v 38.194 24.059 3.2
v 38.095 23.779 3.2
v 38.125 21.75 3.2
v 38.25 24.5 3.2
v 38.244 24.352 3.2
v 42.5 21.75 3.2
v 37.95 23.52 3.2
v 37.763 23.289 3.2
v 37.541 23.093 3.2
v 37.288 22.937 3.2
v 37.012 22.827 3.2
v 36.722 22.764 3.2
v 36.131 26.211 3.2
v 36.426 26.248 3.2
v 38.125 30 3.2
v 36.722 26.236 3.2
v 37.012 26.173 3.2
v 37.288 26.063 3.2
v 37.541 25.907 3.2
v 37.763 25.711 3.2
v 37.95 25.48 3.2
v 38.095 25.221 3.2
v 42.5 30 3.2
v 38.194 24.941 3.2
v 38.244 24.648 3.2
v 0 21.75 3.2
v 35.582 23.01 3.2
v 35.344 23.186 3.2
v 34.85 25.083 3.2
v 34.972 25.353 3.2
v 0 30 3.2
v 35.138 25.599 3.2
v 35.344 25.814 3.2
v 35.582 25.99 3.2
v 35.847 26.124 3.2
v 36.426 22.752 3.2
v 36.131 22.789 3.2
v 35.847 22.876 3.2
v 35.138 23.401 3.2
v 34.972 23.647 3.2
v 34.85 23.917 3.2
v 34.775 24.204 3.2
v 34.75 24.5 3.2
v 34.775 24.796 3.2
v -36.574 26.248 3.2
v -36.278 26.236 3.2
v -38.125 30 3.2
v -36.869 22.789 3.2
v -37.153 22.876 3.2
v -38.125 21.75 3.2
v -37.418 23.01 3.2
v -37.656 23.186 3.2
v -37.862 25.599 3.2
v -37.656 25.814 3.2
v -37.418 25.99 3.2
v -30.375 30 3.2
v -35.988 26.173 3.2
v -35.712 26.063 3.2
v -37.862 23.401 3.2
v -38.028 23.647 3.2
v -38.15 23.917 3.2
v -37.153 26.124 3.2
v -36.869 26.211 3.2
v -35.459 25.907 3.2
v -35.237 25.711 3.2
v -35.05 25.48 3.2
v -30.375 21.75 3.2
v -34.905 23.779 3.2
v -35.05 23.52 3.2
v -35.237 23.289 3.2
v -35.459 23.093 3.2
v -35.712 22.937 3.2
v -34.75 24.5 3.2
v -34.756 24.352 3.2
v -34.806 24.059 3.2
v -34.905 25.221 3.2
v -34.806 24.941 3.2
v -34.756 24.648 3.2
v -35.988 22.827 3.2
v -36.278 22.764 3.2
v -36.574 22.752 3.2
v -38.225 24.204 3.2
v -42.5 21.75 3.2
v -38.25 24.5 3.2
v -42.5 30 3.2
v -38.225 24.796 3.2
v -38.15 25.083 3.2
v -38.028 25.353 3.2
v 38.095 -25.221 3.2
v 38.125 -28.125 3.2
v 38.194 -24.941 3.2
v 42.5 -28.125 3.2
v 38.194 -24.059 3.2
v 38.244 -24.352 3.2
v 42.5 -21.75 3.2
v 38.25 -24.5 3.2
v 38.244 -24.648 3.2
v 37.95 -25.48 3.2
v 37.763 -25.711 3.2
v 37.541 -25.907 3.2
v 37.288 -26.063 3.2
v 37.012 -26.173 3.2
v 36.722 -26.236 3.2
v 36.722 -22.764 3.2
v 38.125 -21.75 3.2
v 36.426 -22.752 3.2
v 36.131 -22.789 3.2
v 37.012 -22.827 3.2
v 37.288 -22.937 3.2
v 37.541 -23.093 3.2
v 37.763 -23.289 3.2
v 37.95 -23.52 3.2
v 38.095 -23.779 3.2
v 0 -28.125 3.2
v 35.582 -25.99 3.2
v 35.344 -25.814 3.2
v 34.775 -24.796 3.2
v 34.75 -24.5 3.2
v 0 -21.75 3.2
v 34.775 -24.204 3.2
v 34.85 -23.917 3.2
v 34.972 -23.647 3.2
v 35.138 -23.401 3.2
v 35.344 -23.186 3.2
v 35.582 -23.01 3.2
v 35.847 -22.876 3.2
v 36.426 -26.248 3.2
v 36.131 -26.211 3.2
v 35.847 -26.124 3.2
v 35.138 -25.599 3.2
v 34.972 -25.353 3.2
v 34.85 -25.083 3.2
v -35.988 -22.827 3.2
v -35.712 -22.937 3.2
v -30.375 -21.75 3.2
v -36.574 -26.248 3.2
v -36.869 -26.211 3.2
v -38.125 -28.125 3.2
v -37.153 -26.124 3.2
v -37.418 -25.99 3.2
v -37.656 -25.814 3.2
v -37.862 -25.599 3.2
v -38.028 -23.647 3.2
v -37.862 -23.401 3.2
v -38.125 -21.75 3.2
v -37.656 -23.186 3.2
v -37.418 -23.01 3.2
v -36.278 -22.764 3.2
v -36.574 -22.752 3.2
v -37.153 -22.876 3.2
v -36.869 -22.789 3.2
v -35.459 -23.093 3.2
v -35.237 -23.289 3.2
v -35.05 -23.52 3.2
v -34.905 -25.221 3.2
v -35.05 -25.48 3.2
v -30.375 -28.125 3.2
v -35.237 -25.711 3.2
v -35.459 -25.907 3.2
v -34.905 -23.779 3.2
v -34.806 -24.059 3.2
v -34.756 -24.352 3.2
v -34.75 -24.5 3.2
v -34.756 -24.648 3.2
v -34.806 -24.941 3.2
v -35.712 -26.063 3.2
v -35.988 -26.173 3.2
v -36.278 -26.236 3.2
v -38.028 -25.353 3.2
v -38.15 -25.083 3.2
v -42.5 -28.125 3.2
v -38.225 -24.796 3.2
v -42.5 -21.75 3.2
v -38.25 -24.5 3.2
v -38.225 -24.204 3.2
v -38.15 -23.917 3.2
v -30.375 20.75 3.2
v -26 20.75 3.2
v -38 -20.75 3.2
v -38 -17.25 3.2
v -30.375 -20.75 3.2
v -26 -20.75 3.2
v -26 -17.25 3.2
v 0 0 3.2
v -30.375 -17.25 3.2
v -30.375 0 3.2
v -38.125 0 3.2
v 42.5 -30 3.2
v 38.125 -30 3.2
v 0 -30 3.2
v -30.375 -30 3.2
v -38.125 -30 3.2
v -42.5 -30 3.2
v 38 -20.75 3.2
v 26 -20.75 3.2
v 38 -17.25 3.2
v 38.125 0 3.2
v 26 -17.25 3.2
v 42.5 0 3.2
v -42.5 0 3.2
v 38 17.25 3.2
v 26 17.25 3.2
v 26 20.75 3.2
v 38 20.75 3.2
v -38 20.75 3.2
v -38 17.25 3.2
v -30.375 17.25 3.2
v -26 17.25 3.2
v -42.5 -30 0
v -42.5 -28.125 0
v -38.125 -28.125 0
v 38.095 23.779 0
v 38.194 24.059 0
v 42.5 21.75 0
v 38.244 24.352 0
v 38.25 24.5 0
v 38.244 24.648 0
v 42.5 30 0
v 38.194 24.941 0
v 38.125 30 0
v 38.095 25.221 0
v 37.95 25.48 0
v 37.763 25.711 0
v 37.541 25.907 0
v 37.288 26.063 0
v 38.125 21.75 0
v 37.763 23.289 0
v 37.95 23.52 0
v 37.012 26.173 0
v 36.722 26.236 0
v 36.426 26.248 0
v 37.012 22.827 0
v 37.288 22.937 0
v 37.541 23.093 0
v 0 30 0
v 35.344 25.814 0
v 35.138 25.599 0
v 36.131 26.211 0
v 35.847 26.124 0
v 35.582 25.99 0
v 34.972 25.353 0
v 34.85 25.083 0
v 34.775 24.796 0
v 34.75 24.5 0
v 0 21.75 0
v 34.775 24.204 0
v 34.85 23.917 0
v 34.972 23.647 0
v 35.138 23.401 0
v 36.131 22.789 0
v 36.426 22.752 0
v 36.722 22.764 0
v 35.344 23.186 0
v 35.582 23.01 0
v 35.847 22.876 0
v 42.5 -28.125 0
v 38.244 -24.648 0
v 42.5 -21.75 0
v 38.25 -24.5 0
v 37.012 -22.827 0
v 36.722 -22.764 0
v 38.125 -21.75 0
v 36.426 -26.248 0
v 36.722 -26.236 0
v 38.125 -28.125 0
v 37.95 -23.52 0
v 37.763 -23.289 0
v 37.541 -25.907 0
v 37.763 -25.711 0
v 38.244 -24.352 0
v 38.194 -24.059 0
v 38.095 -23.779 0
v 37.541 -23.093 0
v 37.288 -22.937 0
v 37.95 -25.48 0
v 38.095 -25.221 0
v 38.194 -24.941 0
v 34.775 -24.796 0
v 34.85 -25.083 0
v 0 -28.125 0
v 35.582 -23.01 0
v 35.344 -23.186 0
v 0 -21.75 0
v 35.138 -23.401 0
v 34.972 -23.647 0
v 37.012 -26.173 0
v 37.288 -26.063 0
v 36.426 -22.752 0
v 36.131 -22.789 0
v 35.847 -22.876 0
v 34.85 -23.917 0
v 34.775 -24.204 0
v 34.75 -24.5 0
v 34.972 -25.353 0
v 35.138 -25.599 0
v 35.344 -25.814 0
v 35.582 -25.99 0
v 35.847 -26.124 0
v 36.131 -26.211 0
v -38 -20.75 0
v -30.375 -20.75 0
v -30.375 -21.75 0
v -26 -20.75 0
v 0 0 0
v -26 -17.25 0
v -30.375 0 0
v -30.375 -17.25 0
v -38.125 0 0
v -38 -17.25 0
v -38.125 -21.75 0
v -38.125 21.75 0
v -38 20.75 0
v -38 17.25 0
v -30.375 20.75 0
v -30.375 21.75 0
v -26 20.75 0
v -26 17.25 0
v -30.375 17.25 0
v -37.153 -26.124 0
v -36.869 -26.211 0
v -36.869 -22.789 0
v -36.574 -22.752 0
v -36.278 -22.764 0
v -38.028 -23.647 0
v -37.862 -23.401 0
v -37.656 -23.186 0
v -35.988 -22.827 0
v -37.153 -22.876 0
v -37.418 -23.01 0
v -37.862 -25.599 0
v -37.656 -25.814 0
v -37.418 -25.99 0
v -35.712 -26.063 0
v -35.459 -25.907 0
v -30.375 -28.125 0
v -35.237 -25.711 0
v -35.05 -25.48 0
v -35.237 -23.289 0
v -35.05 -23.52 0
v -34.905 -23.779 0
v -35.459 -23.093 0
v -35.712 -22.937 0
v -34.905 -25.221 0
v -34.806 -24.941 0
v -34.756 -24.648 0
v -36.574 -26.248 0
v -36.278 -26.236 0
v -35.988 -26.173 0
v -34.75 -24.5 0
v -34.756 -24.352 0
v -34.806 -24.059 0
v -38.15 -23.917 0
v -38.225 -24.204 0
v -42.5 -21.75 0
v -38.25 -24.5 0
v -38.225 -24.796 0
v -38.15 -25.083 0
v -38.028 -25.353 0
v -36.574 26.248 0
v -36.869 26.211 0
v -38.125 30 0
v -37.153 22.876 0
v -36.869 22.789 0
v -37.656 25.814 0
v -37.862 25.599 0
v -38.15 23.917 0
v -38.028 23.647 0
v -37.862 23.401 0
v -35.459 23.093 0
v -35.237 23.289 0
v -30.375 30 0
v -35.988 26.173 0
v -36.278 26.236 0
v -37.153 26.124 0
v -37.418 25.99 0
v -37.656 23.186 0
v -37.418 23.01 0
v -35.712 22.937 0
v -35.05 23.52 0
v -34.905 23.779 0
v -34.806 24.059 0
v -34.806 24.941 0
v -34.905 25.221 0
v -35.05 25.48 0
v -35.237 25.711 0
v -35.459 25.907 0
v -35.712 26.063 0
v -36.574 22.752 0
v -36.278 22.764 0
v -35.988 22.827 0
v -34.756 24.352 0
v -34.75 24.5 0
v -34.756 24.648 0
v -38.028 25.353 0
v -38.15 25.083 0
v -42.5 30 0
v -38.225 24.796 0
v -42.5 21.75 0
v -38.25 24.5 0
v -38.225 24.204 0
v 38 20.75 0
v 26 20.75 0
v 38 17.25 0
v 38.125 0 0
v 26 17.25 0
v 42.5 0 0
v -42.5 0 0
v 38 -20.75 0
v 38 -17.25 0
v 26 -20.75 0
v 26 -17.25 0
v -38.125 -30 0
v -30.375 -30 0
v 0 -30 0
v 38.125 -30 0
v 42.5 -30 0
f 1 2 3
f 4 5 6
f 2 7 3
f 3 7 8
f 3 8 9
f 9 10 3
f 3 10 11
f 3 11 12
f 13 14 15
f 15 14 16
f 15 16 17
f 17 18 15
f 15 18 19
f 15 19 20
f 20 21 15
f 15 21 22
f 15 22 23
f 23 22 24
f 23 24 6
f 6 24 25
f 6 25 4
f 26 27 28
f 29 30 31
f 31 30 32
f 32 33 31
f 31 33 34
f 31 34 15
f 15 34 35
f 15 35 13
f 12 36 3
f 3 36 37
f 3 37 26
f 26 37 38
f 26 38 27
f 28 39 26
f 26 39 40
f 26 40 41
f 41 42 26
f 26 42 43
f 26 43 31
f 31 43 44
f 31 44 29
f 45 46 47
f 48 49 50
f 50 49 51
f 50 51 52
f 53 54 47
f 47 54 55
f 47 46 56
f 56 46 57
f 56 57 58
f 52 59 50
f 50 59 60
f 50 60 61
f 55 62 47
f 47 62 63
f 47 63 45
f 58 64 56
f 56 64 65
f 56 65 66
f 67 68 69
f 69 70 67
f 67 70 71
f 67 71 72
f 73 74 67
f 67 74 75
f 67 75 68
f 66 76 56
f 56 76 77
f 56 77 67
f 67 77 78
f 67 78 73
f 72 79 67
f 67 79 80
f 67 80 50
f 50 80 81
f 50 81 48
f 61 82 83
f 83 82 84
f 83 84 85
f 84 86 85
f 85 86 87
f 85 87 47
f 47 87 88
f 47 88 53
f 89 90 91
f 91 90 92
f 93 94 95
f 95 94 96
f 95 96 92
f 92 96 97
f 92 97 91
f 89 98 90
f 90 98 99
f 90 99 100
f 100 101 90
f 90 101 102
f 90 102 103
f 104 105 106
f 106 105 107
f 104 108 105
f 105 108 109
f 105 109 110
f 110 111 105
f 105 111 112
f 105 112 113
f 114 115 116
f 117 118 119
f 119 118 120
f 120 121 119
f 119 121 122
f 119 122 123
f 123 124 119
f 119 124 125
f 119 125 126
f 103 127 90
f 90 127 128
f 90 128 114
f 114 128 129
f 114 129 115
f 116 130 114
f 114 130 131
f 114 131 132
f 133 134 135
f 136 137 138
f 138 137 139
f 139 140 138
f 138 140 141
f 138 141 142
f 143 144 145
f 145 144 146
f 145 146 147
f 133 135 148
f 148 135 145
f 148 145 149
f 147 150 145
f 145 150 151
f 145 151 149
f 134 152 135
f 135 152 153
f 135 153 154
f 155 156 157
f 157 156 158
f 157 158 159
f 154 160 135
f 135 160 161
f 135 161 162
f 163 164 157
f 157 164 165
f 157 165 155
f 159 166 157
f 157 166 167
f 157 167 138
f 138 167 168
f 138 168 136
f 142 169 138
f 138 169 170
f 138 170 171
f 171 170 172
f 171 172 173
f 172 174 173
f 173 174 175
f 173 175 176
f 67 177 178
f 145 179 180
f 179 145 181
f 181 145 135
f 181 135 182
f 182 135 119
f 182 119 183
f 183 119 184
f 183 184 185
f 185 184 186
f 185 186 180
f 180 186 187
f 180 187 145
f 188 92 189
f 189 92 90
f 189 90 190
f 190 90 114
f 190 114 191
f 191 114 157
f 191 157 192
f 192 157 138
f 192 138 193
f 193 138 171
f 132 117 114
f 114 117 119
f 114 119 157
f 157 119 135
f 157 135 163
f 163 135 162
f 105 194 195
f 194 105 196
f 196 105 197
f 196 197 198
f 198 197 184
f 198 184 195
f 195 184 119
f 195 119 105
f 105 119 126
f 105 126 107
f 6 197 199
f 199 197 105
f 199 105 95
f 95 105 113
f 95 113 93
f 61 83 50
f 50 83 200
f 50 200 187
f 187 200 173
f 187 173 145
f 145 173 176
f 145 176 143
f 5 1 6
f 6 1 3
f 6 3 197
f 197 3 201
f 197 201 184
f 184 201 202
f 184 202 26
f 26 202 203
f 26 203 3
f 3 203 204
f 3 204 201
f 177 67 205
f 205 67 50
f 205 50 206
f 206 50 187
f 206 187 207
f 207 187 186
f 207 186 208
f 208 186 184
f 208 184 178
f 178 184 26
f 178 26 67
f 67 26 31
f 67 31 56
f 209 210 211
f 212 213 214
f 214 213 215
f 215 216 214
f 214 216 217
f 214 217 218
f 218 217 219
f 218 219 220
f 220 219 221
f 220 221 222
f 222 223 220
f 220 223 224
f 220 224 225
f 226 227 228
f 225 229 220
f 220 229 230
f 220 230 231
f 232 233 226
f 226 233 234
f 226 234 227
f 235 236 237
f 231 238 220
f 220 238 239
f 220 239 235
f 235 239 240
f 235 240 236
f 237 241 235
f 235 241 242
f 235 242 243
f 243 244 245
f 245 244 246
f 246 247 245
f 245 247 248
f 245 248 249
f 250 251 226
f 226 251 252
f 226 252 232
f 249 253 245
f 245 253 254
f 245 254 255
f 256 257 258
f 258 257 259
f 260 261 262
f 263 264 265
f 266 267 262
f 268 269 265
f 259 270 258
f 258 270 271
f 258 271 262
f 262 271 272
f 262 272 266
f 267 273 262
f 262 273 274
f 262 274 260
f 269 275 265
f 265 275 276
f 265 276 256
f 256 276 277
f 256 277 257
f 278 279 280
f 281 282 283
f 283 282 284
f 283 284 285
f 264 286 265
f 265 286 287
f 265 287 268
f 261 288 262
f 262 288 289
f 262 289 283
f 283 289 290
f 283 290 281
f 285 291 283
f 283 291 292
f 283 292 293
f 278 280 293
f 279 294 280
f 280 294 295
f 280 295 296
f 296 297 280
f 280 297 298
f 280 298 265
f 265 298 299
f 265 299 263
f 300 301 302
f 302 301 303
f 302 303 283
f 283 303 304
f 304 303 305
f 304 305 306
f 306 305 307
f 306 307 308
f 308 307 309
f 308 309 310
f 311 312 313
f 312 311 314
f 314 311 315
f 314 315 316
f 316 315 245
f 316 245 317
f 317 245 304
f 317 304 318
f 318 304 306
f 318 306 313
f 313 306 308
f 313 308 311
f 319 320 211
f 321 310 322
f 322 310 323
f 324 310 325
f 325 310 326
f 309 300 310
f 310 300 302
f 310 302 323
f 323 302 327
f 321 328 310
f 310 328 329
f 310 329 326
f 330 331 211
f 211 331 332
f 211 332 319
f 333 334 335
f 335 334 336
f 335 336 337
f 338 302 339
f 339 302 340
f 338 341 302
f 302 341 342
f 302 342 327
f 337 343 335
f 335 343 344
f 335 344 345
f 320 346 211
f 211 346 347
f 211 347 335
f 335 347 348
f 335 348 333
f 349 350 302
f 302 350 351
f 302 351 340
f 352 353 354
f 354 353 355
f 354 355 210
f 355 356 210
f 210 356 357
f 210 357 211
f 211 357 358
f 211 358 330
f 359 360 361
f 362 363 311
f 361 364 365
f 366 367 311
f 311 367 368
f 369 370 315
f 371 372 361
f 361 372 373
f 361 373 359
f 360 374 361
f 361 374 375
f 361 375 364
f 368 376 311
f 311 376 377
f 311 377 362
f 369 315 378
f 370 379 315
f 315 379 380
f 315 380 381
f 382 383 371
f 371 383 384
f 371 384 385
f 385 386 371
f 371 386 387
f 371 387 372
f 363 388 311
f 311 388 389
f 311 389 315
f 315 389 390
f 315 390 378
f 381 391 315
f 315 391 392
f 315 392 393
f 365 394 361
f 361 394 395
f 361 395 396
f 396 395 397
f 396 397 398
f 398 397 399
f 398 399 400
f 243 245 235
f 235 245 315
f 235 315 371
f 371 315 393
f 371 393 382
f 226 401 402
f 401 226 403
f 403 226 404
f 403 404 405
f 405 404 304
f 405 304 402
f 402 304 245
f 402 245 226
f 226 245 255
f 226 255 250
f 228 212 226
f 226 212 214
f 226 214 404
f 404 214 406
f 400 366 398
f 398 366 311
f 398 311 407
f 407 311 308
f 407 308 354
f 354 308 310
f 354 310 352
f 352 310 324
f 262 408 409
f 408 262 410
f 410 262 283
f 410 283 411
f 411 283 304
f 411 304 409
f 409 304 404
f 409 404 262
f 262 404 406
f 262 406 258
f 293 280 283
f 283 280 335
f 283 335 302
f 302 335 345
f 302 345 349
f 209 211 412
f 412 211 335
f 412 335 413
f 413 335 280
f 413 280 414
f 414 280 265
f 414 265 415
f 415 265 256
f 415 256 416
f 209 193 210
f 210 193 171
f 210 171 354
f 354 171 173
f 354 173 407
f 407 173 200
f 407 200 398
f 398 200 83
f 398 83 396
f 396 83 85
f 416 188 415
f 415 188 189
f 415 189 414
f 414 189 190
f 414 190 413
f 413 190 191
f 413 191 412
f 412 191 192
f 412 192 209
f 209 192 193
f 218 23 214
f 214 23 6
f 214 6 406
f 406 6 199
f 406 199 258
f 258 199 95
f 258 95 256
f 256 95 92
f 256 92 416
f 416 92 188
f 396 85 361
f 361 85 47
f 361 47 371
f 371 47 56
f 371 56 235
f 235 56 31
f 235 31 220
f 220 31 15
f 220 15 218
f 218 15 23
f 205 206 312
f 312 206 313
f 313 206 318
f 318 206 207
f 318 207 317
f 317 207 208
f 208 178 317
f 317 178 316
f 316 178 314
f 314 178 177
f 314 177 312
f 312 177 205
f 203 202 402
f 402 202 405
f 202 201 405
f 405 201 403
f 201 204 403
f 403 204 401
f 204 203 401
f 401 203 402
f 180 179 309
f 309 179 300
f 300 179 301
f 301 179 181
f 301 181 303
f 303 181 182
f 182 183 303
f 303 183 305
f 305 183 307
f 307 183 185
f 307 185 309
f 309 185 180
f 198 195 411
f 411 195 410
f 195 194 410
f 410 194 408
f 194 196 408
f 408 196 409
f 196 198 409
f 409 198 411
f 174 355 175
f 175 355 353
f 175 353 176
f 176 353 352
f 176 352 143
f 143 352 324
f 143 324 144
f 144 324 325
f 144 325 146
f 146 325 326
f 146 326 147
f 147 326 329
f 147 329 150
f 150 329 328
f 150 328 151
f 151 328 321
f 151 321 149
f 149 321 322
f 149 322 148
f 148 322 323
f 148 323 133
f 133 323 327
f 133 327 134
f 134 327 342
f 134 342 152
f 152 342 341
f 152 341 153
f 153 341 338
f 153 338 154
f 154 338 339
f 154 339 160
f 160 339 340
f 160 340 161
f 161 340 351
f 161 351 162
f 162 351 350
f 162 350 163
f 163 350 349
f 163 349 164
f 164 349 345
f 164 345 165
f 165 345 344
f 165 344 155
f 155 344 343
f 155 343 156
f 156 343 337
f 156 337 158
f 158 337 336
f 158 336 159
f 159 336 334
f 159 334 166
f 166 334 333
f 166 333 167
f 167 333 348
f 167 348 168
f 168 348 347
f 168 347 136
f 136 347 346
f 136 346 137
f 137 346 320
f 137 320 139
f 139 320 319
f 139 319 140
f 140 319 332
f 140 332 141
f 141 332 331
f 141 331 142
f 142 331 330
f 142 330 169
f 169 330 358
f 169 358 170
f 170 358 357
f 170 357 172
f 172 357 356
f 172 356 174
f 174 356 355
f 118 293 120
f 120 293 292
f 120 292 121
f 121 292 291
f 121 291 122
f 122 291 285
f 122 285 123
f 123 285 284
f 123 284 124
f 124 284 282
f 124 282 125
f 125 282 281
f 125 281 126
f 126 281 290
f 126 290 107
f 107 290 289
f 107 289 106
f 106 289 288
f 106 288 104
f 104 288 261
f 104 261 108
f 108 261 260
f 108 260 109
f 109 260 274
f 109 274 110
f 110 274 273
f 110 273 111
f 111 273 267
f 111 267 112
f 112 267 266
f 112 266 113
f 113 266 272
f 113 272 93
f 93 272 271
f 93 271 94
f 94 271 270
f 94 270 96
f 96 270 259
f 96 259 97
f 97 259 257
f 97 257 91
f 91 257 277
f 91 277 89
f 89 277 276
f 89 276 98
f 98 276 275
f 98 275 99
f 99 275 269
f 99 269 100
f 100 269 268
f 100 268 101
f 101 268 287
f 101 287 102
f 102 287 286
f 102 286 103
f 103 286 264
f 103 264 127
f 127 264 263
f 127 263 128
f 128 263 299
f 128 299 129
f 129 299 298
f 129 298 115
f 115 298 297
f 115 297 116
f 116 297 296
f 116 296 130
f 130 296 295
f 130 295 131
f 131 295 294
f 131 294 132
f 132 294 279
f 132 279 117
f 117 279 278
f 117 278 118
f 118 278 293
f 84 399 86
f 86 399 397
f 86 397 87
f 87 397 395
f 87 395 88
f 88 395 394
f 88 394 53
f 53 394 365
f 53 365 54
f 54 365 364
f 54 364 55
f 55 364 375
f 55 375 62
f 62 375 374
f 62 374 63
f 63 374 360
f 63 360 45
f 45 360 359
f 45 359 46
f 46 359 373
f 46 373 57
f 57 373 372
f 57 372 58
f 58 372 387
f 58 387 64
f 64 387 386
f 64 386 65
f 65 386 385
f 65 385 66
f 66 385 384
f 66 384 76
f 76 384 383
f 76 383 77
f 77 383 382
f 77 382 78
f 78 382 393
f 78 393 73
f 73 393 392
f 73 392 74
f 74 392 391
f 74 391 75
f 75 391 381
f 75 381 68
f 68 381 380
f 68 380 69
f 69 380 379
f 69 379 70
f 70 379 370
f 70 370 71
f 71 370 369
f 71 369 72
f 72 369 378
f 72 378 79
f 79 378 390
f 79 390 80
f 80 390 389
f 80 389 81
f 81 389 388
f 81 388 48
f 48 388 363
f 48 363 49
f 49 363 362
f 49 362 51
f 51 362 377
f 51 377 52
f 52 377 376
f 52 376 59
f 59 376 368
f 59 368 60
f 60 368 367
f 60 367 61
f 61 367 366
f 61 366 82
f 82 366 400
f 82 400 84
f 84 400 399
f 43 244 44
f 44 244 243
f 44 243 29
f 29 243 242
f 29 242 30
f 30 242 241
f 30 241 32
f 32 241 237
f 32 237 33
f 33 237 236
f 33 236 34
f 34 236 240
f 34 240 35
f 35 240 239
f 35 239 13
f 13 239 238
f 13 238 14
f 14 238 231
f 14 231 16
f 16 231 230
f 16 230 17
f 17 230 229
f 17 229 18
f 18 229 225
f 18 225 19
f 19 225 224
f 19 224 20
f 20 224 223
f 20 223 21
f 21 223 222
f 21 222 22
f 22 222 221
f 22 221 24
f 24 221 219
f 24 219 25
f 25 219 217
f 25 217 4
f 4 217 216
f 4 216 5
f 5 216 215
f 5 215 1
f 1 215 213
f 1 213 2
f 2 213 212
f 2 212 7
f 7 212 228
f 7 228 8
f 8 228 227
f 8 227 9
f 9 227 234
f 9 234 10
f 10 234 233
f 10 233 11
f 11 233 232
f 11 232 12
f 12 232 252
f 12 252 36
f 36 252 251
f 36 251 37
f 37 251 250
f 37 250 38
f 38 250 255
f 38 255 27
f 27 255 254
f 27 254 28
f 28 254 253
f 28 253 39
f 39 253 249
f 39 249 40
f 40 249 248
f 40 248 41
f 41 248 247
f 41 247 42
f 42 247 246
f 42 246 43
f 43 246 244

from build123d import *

# Parameters (mm, degrees)
SKETCH1_W              = 85
SKETCH1_H              = 60
SKETCH1_R              = 1.75
SKETCH1_W_2            = 12
SKETCH1_H_2            = 3.5
ELECTRONICS_DECK_DEPTH = 3.2


with BuildPart() as part:
    # Sketch1 → Electronics deck (new body)
    with BuildSketch(Plane.XY):
        Rectangle(SKETCH1_W, SKETCH1_H)
        with Locations((-36.5, -24.5)):
            Circle(SKETCH1_R, mode=Mode.SUBTRACT)
        with Locations((36.5, -24.5)):
            Circle(SKETCH1_R, mode=Mode.SUBTRACT)
        with Locations((-36.5, 24.5)):
            Circle(SKETCH1_R, mode=Mode.SUBTRACT)
        with Locations((36.5, 24.5)):
            Circle(SKETCH1_R, mode=Mode.SUBTRACT)
        with Locations((-32, 19)):
            Rectangle(SKETCH1_W_2, SKETCH1_H_2, mode=Mode.SUBTRACT)
        with Locations((32, 19)):
            Rectangle(SKETCH1_W_2, SKETCH1_H_2, mode=Mode.SUBTRACT)
        with Locations((-32, -19)):
            Rectangle(SKETCH1_W_2, SKETCH1_H_2, mode=Mode.SUBTRACT)
        with Locations((32, -19)):
            Rectangle(SKETCH1_W_2, SKETCH1_H_2, mode=Mode.SUBTRACT)
    extrude(amount=ELECTRONICS_DECK_DEPTH)


solid = part.part
